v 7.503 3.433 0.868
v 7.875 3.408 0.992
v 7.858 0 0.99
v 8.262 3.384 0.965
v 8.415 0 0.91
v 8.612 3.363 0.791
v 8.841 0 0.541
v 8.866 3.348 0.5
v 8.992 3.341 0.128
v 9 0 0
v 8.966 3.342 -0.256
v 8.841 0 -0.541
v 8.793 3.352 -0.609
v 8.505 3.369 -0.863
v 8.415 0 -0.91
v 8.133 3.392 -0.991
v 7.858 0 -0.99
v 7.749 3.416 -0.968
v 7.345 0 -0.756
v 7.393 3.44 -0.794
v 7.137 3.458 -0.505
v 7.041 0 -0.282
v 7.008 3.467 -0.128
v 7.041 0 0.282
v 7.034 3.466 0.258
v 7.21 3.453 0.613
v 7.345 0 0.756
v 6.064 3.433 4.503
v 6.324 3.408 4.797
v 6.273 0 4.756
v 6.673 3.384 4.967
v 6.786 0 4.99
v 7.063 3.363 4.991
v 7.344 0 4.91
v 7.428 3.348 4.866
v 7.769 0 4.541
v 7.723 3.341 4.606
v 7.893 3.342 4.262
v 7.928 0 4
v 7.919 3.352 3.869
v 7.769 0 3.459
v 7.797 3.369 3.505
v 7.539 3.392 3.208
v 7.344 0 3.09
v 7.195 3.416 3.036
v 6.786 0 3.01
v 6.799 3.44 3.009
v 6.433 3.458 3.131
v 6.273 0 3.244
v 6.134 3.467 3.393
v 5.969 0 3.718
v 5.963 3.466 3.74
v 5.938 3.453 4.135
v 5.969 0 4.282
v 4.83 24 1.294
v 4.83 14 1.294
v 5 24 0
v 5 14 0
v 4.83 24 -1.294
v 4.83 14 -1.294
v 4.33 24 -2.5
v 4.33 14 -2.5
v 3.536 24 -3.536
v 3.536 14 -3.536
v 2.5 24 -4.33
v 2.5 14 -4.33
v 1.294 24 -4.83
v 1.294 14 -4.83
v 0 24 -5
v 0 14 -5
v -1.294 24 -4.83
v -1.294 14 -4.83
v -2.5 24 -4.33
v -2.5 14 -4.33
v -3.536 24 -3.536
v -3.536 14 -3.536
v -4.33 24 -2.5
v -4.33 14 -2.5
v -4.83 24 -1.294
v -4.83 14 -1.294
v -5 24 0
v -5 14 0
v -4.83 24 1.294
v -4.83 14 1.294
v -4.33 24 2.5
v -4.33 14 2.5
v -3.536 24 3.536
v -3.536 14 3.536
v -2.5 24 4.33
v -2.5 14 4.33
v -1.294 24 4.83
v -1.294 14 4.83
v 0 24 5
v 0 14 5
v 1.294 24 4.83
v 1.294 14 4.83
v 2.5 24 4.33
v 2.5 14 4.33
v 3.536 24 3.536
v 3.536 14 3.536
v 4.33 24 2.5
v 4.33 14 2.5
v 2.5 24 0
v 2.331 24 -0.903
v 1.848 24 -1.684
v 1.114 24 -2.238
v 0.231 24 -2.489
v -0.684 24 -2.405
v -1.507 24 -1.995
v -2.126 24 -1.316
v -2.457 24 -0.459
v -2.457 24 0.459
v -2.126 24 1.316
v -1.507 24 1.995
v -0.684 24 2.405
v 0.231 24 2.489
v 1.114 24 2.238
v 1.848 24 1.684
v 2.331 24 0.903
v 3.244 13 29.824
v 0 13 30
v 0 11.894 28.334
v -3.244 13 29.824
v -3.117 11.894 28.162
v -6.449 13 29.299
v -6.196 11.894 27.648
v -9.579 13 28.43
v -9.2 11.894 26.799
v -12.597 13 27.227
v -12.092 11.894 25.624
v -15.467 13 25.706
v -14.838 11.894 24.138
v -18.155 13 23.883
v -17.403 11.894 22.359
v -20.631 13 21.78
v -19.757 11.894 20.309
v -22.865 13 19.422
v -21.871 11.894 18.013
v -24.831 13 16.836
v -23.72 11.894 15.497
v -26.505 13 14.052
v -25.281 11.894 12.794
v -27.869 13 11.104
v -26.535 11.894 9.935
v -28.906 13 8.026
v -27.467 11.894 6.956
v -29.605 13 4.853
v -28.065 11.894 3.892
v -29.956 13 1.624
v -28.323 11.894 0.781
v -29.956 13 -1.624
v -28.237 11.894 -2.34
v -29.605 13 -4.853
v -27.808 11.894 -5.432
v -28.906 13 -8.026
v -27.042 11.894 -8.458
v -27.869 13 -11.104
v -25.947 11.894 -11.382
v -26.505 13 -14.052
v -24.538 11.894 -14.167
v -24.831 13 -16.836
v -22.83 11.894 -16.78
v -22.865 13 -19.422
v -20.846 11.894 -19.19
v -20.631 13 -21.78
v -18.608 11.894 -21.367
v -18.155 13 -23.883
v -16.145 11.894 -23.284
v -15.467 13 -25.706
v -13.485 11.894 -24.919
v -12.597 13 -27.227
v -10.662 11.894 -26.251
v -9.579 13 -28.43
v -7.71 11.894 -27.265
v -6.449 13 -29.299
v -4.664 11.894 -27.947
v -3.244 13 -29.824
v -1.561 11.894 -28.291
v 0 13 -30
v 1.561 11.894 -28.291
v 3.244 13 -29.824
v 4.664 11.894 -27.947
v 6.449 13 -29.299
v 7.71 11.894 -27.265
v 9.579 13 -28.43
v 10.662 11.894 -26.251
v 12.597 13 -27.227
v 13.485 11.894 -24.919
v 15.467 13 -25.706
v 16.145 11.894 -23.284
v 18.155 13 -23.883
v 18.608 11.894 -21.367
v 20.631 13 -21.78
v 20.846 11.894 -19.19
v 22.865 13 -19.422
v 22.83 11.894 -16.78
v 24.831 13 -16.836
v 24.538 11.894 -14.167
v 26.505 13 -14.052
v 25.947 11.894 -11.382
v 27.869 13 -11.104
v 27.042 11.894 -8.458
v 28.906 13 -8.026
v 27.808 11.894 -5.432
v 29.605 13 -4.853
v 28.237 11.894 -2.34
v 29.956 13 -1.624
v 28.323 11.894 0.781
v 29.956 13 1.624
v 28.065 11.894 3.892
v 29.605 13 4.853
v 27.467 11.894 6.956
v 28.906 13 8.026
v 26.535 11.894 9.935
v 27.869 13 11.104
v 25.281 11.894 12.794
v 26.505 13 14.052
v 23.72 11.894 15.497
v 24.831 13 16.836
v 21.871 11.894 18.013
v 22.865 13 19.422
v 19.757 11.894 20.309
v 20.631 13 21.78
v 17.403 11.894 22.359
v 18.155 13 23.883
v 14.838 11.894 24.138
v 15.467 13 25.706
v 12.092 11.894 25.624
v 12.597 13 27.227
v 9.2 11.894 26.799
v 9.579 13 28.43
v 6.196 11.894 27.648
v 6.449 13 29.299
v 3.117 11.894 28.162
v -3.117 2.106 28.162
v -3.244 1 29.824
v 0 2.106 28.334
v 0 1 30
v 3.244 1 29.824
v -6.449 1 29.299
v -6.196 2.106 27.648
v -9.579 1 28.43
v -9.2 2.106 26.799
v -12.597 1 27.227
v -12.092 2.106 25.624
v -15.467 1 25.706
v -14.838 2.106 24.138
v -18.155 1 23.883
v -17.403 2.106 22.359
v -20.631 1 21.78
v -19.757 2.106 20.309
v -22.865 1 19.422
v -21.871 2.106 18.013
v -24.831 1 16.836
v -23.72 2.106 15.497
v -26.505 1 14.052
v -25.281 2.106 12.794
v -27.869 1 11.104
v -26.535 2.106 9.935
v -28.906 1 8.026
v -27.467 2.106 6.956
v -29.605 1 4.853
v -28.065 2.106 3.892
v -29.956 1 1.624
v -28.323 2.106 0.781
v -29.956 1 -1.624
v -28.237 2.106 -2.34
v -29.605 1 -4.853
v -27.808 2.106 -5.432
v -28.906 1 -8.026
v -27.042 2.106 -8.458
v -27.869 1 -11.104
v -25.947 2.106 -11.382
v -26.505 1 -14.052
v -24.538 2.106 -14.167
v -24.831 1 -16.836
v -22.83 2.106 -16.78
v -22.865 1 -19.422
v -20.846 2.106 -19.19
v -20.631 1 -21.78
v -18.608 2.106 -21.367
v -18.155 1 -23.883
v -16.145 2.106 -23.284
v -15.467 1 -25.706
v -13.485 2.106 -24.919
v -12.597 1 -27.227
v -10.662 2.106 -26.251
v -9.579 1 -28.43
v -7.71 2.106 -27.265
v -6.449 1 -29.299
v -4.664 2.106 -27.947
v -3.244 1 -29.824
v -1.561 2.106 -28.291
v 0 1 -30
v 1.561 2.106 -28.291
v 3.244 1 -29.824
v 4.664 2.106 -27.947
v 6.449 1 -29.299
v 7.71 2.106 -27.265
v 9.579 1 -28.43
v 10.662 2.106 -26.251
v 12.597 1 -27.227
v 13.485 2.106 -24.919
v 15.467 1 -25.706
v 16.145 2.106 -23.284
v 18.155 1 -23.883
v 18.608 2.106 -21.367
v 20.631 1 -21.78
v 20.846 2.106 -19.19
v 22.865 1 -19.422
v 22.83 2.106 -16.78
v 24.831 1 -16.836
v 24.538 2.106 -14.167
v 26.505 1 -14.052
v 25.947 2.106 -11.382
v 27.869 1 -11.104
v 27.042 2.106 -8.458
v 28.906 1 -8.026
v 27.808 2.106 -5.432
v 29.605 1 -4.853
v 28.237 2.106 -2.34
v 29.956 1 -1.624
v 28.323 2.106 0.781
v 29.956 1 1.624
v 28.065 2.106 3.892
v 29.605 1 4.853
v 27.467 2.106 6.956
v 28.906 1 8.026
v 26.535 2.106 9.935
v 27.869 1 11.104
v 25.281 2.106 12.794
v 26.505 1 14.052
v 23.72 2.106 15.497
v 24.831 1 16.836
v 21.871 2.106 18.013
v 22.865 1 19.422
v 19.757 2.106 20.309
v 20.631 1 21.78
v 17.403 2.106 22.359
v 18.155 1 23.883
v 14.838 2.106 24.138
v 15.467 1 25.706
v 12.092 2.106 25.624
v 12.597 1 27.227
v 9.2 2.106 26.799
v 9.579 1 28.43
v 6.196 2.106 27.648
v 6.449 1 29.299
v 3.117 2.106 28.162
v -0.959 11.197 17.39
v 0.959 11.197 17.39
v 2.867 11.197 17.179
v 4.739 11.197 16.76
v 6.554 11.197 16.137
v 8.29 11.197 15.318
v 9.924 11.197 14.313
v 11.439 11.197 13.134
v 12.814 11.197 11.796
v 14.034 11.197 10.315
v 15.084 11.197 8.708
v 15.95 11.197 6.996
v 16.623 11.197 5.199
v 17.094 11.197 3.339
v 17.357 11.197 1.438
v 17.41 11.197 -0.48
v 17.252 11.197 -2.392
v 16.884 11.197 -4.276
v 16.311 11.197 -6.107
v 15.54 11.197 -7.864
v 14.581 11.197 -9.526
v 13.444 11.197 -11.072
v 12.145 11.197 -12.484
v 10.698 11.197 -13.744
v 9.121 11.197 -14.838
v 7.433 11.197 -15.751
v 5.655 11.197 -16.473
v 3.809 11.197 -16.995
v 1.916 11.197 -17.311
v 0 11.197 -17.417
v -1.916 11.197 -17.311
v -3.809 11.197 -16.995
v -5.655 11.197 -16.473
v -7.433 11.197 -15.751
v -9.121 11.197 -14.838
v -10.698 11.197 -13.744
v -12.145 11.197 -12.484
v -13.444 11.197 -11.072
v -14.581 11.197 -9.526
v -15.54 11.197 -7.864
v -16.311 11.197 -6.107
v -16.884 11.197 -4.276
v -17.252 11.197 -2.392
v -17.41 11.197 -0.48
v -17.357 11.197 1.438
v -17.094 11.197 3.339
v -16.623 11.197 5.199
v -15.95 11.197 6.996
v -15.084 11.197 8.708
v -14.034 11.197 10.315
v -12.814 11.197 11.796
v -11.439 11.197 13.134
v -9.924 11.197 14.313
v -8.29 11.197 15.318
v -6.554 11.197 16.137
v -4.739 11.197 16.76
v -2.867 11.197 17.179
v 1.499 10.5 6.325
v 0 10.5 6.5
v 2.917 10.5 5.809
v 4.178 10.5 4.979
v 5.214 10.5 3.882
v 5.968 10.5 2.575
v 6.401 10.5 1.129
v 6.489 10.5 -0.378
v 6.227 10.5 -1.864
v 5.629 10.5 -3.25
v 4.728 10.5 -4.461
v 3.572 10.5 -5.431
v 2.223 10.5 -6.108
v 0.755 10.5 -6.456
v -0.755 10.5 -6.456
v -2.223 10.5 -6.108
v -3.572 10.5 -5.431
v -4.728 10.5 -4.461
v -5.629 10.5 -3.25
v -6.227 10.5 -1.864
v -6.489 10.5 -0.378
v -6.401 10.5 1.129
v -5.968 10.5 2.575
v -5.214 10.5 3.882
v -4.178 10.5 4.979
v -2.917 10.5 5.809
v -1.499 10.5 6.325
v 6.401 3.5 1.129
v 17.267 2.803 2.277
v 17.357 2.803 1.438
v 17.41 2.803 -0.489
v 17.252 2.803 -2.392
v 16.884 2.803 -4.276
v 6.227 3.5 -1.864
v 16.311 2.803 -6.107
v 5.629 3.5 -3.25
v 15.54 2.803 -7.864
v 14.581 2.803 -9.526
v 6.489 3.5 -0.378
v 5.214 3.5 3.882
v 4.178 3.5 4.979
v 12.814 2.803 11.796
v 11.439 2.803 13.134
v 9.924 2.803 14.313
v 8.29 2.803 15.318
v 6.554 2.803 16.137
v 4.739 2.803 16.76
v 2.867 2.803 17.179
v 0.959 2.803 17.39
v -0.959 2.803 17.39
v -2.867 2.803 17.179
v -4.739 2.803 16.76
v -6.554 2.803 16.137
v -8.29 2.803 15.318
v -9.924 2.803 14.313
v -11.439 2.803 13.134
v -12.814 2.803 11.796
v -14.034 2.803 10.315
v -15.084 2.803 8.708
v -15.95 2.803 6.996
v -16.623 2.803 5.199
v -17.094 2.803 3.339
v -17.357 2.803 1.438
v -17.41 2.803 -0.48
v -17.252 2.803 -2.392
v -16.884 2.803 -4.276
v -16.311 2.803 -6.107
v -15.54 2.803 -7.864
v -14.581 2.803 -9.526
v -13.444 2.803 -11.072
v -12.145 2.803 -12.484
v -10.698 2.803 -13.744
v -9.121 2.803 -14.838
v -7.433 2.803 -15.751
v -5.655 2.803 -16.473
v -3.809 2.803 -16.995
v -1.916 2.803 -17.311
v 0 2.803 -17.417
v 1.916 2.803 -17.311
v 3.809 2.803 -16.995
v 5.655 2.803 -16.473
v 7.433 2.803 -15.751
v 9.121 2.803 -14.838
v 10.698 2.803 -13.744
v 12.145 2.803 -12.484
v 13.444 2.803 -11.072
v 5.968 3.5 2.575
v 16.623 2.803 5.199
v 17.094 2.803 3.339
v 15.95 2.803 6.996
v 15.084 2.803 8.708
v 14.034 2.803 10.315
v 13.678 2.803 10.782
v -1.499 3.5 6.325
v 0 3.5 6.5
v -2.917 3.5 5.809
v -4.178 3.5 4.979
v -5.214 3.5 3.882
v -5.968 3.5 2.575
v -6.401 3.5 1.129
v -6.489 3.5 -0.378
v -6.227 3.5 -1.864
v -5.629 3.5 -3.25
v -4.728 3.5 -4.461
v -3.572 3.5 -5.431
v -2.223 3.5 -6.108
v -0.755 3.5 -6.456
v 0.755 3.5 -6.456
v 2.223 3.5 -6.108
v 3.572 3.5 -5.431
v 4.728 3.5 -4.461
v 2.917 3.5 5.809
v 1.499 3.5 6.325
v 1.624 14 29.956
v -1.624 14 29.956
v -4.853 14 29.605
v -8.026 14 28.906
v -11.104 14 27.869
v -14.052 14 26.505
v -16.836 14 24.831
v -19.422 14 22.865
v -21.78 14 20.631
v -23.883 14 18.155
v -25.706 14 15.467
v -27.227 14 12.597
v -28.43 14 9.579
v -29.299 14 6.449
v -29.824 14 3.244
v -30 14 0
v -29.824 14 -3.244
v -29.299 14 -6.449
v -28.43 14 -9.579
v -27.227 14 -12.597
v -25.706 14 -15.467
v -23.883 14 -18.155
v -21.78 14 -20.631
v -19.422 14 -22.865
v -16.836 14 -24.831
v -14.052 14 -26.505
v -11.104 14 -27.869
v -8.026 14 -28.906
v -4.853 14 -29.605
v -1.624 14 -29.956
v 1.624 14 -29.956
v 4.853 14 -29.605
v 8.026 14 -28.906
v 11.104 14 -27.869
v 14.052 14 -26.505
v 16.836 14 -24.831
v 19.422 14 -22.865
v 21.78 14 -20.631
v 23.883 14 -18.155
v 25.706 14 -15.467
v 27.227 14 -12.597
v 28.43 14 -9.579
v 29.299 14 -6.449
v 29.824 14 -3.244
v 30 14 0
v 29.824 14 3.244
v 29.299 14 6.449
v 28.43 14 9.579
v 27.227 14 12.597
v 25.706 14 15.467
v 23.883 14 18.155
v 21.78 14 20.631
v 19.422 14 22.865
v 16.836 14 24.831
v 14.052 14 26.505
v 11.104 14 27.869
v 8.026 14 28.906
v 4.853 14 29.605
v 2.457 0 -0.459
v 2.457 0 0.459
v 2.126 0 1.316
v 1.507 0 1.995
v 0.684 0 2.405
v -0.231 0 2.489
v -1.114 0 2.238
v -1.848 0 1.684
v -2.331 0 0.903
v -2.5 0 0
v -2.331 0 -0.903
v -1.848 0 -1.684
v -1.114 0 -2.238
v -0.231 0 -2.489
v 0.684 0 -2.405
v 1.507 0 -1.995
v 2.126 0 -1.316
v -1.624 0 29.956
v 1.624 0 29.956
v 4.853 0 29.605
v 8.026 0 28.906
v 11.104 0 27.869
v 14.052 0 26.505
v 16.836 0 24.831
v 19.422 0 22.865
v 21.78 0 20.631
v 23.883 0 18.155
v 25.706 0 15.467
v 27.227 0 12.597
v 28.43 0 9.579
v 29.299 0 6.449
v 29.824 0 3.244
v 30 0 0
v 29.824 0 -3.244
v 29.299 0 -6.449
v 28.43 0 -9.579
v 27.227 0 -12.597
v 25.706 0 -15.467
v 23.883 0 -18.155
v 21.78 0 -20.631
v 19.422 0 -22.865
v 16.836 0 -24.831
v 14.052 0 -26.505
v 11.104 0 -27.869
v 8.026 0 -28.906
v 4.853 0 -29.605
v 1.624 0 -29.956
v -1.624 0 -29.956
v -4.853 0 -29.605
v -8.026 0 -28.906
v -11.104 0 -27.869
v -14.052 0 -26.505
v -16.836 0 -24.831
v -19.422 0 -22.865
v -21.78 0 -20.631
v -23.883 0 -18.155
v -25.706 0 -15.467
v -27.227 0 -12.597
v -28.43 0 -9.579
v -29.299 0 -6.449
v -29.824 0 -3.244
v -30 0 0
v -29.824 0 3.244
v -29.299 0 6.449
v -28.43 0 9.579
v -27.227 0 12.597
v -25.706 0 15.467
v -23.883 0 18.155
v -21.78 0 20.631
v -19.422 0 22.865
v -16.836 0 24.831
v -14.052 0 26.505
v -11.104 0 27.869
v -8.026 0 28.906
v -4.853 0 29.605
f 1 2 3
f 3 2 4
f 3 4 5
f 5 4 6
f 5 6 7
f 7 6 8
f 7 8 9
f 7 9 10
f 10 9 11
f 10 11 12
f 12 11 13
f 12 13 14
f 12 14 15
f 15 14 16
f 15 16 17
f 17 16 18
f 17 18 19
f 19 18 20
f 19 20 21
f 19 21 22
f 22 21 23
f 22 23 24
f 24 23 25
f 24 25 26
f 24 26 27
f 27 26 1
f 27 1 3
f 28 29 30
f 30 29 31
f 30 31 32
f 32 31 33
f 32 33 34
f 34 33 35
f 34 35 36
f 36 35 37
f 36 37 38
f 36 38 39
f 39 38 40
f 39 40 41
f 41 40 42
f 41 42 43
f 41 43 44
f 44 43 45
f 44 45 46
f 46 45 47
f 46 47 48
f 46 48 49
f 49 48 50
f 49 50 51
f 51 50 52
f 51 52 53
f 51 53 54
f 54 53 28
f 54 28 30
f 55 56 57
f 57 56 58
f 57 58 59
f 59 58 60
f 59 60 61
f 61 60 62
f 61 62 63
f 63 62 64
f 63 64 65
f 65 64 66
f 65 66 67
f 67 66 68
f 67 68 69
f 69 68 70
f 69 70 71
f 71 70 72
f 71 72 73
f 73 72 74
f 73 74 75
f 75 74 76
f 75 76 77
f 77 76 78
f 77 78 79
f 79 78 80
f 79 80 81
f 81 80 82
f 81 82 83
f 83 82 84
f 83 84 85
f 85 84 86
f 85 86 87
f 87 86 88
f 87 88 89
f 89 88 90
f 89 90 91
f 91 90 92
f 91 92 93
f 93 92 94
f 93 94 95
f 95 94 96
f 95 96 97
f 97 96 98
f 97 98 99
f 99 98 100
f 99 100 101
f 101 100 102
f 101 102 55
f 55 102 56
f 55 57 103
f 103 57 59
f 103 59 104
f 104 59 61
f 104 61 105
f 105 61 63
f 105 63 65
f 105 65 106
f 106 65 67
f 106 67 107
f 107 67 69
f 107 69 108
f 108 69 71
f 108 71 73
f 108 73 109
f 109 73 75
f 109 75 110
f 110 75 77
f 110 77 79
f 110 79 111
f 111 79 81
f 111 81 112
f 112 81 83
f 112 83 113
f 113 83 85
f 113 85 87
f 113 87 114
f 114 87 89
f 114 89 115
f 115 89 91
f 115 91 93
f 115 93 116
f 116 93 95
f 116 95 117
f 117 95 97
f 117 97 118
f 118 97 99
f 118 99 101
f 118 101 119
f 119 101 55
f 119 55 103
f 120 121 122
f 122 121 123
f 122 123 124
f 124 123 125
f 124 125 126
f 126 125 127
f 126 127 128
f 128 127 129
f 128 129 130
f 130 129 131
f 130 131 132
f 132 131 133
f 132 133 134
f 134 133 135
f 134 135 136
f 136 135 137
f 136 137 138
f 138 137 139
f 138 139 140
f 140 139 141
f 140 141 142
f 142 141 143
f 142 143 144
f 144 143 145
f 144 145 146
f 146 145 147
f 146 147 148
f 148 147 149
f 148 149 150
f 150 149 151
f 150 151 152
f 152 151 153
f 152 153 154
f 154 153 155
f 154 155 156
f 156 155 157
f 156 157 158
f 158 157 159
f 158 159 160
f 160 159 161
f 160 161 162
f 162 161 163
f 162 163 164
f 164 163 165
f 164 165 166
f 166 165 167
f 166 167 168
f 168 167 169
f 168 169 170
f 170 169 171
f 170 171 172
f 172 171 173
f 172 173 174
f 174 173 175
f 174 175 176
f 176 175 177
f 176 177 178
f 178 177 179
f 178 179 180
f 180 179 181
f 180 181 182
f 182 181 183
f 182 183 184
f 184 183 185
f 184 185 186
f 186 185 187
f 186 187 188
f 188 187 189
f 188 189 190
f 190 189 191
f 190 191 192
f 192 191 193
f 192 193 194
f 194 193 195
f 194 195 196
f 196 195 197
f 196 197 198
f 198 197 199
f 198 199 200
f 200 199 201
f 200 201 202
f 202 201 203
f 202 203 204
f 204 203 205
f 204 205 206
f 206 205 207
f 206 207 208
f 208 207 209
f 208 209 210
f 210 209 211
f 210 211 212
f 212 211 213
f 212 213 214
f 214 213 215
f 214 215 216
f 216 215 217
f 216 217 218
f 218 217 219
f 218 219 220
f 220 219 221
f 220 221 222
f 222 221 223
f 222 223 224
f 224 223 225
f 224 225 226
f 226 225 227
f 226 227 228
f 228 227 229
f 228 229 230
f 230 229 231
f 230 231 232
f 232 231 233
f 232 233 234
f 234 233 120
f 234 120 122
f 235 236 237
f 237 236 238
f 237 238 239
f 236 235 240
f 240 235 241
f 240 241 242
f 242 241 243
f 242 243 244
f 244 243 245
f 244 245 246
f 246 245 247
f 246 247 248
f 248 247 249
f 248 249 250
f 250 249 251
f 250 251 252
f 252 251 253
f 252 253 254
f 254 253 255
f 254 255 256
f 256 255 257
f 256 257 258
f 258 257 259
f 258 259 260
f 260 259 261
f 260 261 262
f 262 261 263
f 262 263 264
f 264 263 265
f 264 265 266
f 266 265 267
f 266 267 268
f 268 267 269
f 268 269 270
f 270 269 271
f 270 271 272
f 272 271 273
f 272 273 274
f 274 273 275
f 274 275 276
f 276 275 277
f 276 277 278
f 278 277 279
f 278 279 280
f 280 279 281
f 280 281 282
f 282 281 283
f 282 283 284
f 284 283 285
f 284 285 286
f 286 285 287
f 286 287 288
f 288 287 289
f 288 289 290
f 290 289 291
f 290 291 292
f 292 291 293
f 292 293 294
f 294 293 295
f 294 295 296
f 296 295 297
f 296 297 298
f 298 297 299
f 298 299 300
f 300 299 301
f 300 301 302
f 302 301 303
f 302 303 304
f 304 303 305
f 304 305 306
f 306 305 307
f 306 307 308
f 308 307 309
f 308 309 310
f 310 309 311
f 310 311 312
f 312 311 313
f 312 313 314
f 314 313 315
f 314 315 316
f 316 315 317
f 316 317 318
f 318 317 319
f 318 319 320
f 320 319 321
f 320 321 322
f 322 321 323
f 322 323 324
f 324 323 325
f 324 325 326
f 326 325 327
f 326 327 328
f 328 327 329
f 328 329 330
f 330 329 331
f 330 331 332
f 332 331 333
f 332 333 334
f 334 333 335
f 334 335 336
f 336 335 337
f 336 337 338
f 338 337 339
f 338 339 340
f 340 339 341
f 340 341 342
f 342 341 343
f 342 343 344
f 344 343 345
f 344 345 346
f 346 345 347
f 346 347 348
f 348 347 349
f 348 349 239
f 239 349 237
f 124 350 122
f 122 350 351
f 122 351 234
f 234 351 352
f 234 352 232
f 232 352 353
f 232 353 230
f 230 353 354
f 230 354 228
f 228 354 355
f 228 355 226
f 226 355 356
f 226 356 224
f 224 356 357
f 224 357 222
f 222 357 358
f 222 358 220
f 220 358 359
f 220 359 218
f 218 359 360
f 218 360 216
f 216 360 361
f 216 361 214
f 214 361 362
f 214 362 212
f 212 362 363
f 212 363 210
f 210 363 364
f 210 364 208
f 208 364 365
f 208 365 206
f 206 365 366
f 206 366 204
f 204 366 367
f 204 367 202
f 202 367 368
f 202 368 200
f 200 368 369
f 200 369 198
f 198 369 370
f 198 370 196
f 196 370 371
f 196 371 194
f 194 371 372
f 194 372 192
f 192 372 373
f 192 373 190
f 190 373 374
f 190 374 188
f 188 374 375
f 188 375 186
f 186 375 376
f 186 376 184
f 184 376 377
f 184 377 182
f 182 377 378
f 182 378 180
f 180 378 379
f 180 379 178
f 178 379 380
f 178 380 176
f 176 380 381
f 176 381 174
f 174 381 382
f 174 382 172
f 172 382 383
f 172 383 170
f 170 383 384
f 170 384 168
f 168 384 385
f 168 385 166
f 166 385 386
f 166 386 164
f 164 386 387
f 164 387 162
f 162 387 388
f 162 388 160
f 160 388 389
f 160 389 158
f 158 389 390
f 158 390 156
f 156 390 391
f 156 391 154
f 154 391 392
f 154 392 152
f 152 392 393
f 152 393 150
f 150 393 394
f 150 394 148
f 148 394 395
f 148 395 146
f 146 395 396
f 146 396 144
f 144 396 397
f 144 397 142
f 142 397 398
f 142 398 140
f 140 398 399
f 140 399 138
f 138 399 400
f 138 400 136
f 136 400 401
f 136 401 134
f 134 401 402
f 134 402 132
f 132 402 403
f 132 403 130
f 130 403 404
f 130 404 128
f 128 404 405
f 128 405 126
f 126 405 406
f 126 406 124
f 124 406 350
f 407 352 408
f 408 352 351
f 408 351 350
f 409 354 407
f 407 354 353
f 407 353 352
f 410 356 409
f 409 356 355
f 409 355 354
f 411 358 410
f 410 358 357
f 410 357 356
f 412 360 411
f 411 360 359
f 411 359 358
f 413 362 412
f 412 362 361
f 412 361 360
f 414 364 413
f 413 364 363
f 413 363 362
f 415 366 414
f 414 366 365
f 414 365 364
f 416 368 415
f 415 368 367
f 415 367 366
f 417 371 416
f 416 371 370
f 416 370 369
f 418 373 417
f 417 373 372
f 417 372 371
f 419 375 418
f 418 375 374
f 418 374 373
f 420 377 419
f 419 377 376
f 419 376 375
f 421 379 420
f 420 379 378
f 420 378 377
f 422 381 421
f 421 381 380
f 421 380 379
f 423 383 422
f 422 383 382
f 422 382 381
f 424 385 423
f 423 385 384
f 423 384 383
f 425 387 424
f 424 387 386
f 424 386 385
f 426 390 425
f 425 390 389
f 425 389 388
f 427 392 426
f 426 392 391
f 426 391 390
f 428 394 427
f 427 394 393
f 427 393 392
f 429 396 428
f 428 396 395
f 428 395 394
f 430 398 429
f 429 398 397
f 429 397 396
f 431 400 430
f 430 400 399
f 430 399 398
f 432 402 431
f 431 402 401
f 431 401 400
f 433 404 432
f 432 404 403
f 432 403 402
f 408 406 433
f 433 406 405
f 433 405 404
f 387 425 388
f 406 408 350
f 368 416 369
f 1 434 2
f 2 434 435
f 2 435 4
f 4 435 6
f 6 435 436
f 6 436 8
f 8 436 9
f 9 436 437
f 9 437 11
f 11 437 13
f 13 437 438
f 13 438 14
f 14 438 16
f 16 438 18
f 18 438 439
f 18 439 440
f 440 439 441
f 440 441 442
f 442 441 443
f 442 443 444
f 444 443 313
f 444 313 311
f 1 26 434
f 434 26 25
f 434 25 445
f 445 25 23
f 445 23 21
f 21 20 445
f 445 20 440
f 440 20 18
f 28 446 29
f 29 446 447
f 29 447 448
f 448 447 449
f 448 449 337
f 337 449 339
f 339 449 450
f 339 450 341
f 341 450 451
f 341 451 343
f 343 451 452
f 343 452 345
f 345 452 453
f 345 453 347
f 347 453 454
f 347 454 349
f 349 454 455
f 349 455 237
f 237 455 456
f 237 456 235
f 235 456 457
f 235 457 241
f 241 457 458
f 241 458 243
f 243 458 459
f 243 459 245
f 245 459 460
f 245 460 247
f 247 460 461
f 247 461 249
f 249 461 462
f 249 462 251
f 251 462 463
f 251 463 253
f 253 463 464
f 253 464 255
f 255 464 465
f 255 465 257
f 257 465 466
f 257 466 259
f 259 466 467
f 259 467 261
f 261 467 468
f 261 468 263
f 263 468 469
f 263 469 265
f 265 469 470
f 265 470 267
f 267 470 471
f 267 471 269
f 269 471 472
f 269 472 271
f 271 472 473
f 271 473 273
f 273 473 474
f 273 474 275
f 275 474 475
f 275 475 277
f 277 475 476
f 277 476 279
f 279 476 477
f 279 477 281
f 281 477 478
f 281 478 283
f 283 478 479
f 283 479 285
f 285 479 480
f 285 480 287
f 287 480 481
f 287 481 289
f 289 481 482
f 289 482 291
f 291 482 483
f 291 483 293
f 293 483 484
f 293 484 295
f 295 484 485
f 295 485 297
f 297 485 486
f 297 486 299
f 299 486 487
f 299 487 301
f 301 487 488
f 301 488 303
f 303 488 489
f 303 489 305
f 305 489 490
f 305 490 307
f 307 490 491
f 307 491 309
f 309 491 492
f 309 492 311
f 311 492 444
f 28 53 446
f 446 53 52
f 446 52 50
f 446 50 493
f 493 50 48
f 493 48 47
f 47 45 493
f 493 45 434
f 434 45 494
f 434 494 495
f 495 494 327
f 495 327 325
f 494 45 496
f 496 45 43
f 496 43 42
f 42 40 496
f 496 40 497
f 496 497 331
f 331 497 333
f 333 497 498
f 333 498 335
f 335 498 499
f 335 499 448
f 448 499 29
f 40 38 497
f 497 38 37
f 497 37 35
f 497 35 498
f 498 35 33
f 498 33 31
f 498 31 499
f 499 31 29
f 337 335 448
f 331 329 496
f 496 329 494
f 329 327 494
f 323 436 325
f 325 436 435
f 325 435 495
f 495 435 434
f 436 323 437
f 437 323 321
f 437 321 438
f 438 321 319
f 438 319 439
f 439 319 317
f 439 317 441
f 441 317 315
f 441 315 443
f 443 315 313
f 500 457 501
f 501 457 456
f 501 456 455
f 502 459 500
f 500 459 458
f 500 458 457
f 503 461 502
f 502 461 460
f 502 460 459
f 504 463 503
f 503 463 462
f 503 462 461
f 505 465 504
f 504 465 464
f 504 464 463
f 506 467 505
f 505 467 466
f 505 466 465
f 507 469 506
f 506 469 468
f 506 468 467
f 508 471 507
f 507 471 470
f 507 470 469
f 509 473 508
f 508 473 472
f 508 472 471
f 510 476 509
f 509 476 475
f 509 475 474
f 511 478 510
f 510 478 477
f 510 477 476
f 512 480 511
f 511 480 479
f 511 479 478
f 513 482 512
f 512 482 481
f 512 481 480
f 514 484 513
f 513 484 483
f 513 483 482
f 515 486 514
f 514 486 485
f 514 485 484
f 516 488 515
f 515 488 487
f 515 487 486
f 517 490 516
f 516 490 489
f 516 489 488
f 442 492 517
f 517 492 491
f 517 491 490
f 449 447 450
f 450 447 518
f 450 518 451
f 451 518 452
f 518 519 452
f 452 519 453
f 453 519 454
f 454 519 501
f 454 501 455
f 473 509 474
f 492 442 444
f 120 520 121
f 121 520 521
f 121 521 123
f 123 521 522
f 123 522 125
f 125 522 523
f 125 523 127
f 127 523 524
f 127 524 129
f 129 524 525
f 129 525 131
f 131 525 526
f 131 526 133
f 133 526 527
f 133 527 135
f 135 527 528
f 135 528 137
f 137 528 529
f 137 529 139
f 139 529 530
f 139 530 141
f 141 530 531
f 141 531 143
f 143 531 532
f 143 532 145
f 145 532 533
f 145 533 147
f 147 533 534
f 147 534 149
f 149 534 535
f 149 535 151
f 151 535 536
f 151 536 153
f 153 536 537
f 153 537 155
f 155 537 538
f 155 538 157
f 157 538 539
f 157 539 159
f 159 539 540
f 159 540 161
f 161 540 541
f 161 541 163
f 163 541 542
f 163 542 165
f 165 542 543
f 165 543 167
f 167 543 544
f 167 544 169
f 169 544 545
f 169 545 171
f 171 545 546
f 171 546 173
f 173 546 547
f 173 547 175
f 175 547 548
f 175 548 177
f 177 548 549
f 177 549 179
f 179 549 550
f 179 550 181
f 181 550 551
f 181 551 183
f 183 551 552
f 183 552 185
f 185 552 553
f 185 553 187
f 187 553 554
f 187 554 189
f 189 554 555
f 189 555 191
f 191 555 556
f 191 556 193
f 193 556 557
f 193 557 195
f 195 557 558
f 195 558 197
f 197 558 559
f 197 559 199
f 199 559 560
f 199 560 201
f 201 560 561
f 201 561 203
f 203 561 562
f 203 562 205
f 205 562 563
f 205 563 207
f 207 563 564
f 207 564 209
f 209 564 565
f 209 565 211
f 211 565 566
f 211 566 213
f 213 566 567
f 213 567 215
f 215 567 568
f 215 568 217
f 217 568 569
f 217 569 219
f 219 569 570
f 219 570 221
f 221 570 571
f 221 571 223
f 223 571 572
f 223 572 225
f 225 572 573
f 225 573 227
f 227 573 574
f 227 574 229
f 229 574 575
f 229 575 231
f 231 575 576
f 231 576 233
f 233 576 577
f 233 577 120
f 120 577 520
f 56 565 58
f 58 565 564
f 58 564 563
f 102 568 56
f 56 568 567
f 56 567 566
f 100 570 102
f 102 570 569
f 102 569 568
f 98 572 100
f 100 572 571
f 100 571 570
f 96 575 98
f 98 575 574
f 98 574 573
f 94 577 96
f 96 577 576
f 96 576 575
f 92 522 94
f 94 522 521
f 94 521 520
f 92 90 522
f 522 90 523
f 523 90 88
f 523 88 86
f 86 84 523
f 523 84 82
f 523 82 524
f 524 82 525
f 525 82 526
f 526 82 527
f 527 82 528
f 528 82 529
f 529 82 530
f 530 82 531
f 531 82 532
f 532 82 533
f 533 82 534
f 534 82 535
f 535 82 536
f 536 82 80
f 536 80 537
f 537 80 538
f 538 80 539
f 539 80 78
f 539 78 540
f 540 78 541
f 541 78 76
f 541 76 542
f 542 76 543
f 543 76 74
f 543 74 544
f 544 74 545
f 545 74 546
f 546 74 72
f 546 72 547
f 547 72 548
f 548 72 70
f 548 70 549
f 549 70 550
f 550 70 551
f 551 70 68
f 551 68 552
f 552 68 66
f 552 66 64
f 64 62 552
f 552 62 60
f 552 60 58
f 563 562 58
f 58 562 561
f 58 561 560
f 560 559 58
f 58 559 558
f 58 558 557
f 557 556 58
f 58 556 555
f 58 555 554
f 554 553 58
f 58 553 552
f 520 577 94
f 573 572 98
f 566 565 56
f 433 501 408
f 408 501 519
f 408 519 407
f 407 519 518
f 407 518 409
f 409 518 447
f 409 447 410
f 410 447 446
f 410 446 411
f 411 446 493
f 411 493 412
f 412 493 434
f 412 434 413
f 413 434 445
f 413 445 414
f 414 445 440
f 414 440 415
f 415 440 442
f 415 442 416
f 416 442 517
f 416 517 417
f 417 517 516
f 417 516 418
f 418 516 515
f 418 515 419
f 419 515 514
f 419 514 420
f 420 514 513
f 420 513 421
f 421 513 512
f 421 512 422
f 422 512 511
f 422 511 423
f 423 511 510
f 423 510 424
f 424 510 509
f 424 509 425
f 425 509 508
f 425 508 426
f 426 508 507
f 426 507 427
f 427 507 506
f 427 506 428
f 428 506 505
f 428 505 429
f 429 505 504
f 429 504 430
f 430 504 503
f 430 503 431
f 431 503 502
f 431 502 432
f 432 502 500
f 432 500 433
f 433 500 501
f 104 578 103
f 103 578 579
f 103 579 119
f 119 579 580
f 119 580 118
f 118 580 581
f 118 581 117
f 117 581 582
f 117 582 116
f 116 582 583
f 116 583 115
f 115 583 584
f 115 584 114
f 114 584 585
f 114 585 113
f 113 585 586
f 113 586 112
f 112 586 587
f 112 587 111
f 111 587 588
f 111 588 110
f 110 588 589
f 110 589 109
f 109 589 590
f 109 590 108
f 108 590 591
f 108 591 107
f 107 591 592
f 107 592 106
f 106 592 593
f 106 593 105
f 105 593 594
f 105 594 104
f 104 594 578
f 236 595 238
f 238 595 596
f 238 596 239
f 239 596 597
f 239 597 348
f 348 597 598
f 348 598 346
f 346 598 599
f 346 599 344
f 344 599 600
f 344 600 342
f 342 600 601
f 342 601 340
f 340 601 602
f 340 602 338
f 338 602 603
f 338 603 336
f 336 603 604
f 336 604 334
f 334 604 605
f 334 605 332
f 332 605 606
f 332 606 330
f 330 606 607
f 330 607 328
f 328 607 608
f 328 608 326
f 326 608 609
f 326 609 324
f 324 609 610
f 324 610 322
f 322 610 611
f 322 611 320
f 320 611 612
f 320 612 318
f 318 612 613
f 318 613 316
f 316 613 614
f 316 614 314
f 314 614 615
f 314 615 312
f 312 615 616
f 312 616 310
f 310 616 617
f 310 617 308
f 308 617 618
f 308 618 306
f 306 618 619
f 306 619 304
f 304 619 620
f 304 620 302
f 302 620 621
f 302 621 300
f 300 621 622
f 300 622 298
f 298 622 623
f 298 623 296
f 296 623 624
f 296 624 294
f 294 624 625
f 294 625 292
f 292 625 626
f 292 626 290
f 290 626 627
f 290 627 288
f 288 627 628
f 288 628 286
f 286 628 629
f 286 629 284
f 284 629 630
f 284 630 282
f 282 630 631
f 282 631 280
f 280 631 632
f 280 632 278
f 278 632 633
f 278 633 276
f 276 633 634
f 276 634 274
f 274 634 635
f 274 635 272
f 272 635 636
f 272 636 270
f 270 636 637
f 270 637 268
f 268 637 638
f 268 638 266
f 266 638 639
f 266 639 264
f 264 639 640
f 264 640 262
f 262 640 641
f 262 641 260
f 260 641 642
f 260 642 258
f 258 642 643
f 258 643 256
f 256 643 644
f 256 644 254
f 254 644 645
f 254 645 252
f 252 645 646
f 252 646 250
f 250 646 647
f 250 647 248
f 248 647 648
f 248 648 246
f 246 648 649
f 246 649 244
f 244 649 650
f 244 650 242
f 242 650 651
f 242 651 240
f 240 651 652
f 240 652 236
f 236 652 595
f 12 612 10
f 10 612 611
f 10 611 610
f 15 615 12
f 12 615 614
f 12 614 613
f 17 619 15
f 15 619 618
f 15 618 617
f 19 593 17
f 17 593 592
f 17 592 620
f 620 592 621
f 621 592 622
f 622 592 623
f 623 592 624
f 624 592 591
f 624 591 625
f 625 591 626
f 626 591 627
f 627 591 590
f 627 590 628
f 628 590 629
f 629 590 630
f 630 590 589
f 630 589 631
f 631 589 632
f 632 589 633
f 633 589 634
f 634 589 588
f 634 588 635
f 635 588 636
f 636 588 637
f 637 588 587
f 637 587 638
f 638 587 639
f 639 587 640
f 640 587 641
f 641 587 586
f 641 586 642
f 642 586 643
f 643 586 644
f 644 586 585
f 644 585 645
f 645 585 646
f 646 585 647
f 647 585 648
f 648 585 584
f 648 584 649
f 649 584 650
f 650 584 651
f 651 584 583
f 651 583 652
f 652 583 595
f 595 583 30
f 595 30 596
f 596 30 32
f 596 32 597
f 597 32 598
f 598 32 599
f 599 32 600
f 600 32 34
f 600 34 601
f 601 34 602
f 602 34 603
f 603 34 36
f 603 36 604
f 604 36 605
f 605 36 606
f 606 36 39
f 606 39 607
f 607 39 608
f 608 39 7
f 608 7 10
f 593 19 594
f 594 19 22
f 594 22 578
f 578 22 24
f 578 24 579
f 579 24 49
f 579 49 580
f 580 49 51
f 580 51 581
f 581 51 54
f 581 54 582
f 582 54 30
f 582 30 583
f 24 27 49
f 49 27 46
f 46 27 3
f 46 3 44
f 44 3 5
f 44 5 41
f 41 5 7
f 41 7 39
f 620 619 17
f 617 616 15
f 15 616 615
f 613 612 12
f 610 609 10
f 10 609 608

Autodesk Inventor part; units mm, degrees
ref_plane "YZ Plane" through (0, 0, 0) normal (1, 0, 0) x (0, 1, 0)
ref_plane "XZ Plane" through (0, 0, 0) normal (0, 1, 0) x (-1, 0, 0)
ref_plane "XY Plane" through (0, 0, 0) normal (0, 0, 1) x (1, 0, 0)
sketch "Sketch1" plane through (0, 0, 0) normal (0, 1, 0) x (-1, 0, 0)
  circle A0 centre (0, 0) radius 30
  circle A1 centre (0, 0) radius 2.5
  dimension "d0" = 60
  dimension "d1" = 5
extrude "Extrusion1" add sketch "Sketch1" along normal blind 2
sketch "Sketch2" plane through (0, 2, 0) normal (0, 1, 0) x (1, 0, 0)
  circle A0 centre (0, 0) radius 2.5
  circle A1 centre (0, 0) radius 6.5
  dimension "d4" = 13
extrude "Extrusion2" add sketch "Sketch2" along normal blind 10
sketch "Sketch3" plane through (0, 12, 0) normal (0, 1, 0) x (1, 0, 0)
  circle A0 centre (0, 0) radius 30
  circle A1 centre (0, 0) radius 2.5
extrude "Extrusion3" add sketch "Sketch3" along normal blind 2
sketch "Sketch4" plane through (0, 0, 0) normal (1, 0, 0) x (0, 1, 0)
  line L0 (2, 6.5) -> (12, 6.5) projected
  line L1 (2, 6.5) -> (3.5, 6.5)
  line L2 (2, -30) -> (2, 30) projected
  line L3 (3.5, 6.5) -> (2, 30)
  line L4 (12, 6.5) -> (10.5, 6.5)
  line L5 (12, -30) -> (12, 30) projected
  line L6 (10.5, 6.5) -> (12, 30)
  line L7 (-2.8, 0) -> (16.8, 0) projected
  point P0 (0, 0)
  dimension "d9" = 1.5
  dimension "d10" = 1.5
revolve "Revolution1" add sketch "Sketch4" angle 360 about axis through (0, -10, 0) along (0, 1, 0) contours L2 L3 L0 | L6 L5 L0
sketch "Sketch6" plane through (0, 0, 0) normal (1, 0, 0) x (0, 1, 0)
  line L0 (0, -30) -> (0, 30) projected
  line L1 (0, 30) -> (1, 30)
  line L2 (0, 30) -> (2, 30) projected
  line L3 (1, 30) -> (2.1063, 28.3339)
  line L4 (2, 30) -> (3.5, 6.5) projected
  line L5 (2.1063, 28.3339) -> (1, 28.3339)
  line L6 (1, 28.3339) -> (1, 30)
  line L7 (14, -30) -> (14, 30) projected
  line L8 (14, 30) -> (13, 30)
  line L9 (12, 30) -> (14, 30) projected
  line L10 (13, 30) -> (11.8937, 28.3339)
  line L11 (10.5, 6.5) -> (12, 30) projected
  line L12 (11.8937, 28.3339) -> (14, 28.3339)
  line L13 (14, 28.3339) -> (14, 30)
  line L14 (13, 30) -> (13, 28.3339)
  line L15 (-2.8, 0) -> (16.8, 0) projected
  point P0 (0, 0)
  dimension "d12" = 1
  dimension "d13" = 2
revolve "Revolution2" cut sketch "Sketch6" angle 360 about axis through (0, -10, 0) along (0, 1, 0) contours L2 L4 L3 | L10 L11 L9
sketch "Sketch7" plane through (0, 14, 0) normal (0, 1, 0) x (1, 0, 0)
  circle A0 centre (0, 0) radius 2.5
  circle A1 centre (0, 0) radius 5
  dimension "d15" = 10
extrude "Extrusion4" add sketch "Sketch7" along normal blind 10
ref_plane "Work Plane1" through (0, 7, 0) normal (0, 1, 0) x (1, 0, 0)
sketch "Sketch8" plane through (0, 0, 0) normal (0, -1, 0) x (1, 0, 0)
  line L0 (0, 0) -> (8, 0)
  circle A0 centre (8, 0) radius 1
  circle A1 centre (6.9282, 4) radius 1
  dimension "d18" = 8
  dimension "d21" = 30
  dimension "d25" = 2
extrude "Extrusion5" cut sketch "Sketch8" against normal up to surface
properties part number "spool"
